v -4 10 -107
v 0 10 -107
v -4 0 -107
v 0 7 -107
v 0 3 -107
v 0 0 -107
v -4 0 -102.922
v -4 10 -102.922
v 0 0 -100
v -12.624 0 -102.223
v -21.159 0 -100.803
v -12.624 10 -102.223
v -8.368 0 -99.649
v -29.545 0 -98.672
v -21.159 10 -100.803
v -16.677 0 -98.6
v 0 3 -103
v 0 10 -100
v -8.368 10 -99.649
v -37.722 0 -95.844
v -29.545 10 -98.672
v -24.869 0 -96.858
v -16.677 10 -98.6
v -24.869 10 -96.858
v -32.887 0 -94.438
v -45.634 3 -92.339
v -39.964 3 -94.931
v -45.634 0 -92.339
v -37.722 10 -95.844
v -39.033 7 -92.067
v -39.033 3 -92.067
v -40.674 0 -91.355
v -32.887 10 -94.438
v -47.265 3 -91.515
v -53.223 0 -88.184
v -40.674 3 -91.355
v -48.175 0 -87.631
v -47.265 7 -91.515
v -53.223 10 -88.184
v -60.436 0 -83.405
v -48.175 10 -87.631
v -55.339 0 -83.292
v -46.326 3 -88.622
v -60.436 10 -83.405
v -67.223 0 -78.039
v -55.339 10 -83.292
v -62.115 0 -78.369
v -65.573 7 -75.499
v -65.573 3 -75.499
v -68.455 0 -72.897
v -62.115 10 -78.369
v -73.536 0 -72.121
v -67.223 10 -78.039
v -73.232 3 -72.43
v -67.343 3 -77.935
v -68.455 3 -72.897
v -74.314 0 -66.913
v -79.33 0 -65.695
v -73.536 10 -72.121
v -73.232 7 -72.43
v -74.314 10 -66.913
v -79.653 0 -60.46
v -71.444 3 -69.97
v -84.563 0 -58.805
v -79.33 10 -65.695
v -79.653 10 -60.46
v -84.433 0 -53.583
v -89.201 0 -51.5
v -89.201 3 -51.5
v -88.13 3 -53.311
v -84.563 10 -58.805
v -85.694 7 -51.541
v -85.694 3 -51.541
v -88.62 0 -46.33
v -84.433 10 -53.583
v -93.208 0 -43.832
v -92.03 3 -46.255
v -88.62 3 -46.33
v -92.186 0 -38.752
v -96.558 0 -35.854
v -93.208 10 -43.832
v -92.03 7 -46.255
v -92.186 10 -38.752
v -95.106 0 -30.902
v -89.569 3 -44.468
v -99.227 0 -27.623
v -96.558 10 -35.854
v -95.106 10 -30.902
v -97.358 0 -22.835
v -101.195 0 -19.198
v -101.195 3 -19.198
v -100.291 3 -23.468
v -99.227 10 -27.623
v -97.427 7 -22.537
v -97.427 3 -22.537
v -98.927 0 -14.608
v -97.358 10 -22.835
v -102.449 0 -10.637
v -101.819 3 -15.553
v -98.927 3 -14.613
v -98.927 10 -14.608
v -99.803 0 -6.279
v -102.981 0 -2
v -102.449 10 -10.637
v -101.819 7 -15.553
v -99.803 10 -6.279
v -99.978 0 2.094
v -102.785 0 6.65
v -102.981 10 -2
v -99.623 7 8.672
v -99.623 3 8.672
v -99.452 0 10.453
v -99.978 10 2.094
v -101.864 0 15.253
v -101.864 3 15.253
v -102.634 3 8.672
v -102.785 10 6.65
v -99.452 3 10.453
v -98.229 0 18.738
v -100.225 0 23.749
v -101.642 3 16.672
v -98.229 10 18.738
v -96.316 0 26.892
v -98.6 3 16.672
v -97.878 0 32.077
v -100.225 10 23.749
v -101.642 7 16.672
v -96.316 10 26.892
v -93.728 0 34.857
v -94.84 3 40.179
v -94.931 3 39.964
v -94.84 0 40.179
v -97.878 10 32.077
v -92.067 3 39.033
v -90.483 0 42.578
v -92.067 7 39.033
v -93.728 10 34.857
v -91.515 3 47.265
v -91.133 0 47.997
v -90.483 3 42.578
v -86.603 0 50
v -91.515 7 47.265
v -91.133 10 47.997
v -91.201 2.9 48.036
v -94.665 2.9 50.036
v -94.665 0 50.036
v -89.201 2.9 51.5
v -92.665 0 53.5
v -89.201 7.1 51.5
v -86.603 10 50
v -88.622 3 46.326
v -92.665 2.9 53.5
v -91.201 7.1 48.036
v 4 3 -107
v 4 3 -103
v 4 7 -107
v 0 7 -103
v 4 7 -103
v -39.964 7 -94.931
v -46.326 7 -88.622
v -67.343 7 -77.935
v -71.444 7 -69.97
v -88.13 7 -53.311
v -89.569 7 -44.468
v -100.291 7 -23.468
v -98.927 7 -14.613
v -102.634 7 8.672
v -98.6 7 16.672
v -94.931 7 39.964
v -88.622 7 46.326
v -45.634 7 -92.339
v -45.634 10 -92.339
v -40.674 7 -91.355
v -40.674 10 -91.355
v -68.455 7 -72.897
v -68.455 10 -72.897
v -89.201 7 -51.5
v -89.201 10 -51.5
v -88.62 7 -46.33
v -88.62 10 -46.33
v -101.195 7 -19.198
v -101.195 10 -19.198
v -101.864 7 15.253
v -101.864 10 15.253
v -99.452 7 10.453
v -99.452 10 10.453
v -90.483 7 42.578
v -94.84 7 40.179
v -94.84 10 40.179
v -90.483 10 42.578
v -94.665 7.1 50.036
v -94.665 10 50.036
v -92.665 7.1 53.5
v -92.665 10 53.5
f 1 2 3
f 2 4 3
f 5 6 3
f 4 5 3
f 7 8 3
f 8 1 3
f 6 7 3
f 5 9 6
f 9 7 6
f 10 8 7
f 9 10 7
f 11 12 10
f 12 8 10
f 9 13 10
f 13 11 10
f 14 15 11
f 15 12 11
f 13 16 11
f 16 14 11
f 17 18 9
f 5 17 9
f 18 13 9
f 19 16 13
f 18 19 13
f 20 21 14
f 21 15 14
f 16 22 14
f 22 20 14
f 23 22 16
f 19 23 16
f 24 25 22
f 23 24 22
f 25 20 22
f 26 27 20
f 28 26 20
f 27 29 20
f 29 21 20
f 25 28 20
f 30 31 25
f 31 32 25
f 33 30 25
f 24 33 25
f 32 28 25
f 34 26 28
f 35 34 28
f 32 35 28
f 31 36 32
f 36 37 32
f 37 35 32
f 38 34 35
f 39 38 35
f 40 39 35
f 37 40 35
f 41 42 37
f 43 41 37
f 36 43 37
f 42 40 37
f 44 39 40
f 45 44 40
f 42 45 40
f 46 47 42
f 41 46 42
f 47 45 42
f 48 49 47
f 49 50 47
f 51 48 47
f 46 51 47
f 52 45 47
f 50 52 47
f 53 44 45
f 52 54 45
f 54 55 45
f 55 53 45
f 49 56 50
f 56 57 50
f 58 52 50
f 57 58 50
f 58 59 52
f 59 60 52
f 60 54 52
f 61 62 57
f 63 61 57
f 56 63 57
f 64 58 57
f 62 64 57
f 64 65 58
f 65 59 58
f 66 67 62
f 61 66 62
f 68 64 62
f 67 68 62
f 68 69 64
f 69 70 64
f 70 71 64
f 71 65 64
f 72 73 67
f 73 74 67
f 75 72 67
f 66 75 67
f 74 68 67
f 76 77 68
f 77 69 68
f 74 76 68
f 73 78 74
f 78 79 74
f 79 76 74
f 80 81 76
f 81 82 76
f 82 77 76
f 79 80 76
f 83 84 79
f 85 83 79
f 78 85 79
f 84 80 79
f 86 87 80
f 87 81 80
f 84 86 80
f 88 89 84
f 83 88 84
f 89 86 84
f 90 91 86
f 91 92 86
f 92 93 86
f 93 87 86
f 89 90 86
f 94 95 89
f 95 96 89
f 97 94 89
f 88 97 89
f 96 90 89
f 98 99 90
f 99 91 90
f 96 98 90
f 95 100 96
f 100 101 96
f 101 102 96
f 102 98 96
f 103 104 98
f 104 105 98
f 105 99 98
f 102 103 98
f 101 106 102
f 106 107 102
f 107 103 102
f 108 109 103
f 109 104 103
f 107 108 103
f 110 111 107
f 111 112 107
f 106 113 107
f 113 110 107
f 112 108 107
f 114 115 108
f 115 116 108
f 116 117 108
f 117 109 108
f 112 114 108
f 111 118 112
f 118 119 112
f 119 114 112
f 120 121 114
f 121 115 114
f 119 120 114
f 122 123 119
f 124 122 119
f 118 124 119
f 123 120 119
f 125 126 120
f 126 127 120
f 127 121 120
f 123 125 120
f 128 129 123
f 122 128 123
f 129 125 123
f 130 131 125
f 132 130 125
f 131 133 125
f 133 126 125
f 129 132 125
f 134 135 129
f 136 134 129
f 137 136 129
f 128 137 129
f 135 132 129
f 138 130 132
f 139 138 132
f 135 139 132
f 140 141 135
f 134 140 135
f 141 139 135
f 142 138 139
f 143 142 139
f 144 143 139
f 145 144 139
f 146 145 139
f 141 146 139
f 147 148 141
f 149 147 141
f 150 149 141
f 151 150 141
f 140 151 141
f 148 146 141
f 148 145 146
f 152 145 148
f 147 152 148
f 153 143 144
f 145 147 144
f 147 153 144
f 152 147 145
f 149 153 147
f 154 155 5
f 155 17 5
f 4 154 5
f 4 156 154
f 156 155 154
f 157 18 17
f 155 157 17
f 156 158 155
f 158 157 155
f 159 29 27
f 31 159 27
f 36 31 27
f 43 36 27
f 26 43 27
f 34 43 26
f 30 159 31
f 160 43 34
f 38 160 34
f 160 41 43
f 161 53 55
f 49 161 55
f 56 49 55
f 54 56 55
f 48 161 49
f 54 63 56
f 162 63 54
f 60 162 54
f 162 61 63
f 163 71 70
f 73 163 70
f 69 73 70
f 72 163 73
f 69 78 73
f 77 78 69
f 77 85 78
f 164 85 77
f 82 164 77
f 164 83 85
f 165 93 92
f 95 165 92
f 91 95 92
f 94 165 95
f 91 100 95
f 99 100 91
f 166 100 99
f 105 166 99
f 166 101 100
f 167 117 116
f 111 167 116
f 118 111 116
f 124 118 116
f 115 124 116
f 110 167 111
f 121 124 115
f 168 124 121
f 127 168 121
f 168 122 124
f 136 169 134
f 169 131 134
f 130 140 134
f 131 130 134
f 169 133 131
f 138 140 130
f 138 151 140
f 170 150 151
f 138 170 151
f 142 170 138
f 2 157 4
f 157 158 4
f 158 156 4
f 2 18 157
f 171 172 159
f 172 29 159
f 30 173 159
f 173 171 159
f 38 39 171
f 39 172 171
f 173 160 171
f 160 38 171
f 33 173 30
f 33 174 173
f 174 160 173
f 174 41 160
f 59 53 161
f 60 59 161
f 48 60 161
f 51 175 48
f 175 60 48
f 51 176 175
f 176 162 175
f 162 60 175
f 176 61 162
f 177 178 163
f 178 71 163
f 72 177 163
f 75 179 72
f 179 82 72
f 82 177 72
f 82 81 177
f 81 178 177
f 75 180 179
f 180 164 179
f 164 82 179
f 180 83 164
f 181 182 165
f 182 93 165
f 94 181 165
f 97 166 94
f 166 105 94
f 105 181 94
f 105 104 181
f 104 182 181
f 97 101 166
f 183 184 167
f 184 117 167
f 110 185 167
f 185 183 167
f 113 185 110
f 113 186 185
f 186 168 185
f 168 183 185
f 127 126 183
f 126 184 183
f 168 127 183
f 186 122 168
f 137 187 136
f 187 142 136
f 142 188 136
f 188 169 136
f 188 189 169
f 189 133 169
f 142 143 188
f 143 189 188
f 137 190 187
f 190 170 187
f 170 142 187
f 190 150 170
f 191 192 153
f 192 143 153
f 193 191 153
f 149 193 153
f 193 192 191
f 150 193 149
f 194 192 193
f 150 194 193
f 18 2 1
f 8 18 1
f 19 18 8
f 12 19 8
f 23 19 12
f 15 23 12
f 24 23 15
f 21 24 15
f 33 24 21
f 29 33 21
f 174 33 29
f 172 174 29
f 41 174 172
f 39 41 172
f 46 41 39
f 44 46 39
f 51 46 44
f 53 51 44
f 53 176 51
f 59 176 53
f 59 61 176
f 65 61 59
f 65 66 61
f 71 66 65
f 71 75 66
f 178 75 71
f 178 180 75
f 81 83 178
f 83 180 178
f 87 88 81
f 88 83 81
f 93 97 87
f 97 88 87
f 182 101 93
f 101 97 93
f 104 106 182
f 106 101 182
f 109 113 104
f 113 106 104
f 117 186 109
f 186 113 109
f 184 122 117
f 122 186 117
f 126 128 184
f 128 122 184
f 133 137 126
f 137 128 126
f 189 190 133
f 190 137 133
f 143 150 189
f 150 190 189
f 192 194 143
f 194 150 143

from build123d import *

# Parameters (mm, degrees)
BOSS_EXTRUDE1_DEPTH             = 10
SKETCH2_W                       = 8
SKETCH2_H                       = 4.2
CUT_EXTRUDE1_DEPTH              = 4
SKETCH3_W                       = 8
SKETCH3_H                       = 4
BOSS_EXTRUDE2_DEPTH             = 4
SKETCH4_W                       = 8
SKETCH4_H                       = 4
CUT_EXTRUDE2_DEPTH              = 104
CIRPATTERN4_COUNT               = 5
CIRPATTERN4_ANGLE               = 72
CIRPATTERN4_THE_OTHER_WAY_COUNT = 5
CIRPATTERN4_THE_OTHER_WAY_ANGLE = 72


with BuildPart() as part:
    # Sketch1 → Boss-Extrude1 (new body)
    with BuildSketch(Plane(origin=(0, 0, 0), x_dir=(1, 0, 0), z_dir=(0, 1, 0))):
        with BuildLine():
            Line((-4, 107), (-4, 102.92230079))
            ThreePointArc((-4, 102.92230079), (-89.20061659, 51.5), (-91.1333271, -47.99704878))
            Line((-91.1333271, -47.99704878), (-94.664718205, -50.035898385))
            Line((-94.664718205, -50.035898385), (-92.664718205, -53.5))
            Line((-92.664718205, -53.5), (-86.602540378, -50))
            ThreePointArc((-86.602540378, -50), (-86.602540378, 50), (0, 100))
            Line((0, 100), (0, 107))
            Line((0, 107), (-4, 107))
        make_face()
    extrude(amount=BOSS_EXTRUDE1_DEPTH)

    # Sketch2 → Cut-Extrude1 (cut)
    with BuildSketch(Plane(origin=(-92.664718205, 0, 53.5), x_dir=(0.5, 0, 0.866025404), z_dir=(-0.866025404, 0, 0.5))):
        with Locations((0, 5)):
            Rectangle(SKETCH2_W, SKETCH2_H)
    extrude(amount=-CUT_EXTRUDE1_DEPTH, mode=Mode.SUBTRACT)

    # Sketch3 → Boss-Extrude2 (add)
    with BuildSketch(Plane(origin=(0, 0, -107), x_dir=(-1, 0, 0), z_dir=(0, 0, -1))):
        with Locations((0, 5)):
            Rectangle(SKETCH3_W, SKETCH3_H)
    extrude(amount=-BOSS_EXTRUDE2_DEPTH)

    # Sketch4 → Cut-Extrude2 (cut, through all)
    with BuildSketch(Plane(origin=(0, 0, 0), x_dir=(0, 0, -1), z_dir=(1, 0, 0))):
        with Locations((-12.672320837, 5)):
            Rectangle(SKETCH4_W, SKETCH4_H)
    cut_extrude2 = extrude(amount=-CUT_EXTRUDE2_DEPTH, mode=Mode.SUBTRACT)

    # CirPattern4: Cut-Extrude2 ×5 about axis
    cirpattern4_axis = Axis((0, 0, 0), (0, -1, 0))
    for i in range(1, CIRPATTERN4_COUNT):
        add(cut_extrude2.rotate(cirpattern4_axis, i * CIRPATTERN4_ANGLE / (CIRPATTERN4_COUNT - 1)), mode=Mode.SUBTRACT)

    # CirPattern4 the other way: Cut-Extrude2 ×5 about axis
    cirpattern4_the_other_way_axis = Axis((0, 0, 0), (0, 1, 0))
    for i in range(1, CIRPATTERN4_THE_OTHER_WAY_COUNT):
        add(cut_extrude2.rotate(cirpattern4_the_other_way_axis, i * CIRPATTERN4_THE_OTHER_WAY_ANGLE / (CIRPATTERN4_THE_OTHER_WAY_COUNT - 1)), mode=Mode.SUBTRACT)


solid = part.part
